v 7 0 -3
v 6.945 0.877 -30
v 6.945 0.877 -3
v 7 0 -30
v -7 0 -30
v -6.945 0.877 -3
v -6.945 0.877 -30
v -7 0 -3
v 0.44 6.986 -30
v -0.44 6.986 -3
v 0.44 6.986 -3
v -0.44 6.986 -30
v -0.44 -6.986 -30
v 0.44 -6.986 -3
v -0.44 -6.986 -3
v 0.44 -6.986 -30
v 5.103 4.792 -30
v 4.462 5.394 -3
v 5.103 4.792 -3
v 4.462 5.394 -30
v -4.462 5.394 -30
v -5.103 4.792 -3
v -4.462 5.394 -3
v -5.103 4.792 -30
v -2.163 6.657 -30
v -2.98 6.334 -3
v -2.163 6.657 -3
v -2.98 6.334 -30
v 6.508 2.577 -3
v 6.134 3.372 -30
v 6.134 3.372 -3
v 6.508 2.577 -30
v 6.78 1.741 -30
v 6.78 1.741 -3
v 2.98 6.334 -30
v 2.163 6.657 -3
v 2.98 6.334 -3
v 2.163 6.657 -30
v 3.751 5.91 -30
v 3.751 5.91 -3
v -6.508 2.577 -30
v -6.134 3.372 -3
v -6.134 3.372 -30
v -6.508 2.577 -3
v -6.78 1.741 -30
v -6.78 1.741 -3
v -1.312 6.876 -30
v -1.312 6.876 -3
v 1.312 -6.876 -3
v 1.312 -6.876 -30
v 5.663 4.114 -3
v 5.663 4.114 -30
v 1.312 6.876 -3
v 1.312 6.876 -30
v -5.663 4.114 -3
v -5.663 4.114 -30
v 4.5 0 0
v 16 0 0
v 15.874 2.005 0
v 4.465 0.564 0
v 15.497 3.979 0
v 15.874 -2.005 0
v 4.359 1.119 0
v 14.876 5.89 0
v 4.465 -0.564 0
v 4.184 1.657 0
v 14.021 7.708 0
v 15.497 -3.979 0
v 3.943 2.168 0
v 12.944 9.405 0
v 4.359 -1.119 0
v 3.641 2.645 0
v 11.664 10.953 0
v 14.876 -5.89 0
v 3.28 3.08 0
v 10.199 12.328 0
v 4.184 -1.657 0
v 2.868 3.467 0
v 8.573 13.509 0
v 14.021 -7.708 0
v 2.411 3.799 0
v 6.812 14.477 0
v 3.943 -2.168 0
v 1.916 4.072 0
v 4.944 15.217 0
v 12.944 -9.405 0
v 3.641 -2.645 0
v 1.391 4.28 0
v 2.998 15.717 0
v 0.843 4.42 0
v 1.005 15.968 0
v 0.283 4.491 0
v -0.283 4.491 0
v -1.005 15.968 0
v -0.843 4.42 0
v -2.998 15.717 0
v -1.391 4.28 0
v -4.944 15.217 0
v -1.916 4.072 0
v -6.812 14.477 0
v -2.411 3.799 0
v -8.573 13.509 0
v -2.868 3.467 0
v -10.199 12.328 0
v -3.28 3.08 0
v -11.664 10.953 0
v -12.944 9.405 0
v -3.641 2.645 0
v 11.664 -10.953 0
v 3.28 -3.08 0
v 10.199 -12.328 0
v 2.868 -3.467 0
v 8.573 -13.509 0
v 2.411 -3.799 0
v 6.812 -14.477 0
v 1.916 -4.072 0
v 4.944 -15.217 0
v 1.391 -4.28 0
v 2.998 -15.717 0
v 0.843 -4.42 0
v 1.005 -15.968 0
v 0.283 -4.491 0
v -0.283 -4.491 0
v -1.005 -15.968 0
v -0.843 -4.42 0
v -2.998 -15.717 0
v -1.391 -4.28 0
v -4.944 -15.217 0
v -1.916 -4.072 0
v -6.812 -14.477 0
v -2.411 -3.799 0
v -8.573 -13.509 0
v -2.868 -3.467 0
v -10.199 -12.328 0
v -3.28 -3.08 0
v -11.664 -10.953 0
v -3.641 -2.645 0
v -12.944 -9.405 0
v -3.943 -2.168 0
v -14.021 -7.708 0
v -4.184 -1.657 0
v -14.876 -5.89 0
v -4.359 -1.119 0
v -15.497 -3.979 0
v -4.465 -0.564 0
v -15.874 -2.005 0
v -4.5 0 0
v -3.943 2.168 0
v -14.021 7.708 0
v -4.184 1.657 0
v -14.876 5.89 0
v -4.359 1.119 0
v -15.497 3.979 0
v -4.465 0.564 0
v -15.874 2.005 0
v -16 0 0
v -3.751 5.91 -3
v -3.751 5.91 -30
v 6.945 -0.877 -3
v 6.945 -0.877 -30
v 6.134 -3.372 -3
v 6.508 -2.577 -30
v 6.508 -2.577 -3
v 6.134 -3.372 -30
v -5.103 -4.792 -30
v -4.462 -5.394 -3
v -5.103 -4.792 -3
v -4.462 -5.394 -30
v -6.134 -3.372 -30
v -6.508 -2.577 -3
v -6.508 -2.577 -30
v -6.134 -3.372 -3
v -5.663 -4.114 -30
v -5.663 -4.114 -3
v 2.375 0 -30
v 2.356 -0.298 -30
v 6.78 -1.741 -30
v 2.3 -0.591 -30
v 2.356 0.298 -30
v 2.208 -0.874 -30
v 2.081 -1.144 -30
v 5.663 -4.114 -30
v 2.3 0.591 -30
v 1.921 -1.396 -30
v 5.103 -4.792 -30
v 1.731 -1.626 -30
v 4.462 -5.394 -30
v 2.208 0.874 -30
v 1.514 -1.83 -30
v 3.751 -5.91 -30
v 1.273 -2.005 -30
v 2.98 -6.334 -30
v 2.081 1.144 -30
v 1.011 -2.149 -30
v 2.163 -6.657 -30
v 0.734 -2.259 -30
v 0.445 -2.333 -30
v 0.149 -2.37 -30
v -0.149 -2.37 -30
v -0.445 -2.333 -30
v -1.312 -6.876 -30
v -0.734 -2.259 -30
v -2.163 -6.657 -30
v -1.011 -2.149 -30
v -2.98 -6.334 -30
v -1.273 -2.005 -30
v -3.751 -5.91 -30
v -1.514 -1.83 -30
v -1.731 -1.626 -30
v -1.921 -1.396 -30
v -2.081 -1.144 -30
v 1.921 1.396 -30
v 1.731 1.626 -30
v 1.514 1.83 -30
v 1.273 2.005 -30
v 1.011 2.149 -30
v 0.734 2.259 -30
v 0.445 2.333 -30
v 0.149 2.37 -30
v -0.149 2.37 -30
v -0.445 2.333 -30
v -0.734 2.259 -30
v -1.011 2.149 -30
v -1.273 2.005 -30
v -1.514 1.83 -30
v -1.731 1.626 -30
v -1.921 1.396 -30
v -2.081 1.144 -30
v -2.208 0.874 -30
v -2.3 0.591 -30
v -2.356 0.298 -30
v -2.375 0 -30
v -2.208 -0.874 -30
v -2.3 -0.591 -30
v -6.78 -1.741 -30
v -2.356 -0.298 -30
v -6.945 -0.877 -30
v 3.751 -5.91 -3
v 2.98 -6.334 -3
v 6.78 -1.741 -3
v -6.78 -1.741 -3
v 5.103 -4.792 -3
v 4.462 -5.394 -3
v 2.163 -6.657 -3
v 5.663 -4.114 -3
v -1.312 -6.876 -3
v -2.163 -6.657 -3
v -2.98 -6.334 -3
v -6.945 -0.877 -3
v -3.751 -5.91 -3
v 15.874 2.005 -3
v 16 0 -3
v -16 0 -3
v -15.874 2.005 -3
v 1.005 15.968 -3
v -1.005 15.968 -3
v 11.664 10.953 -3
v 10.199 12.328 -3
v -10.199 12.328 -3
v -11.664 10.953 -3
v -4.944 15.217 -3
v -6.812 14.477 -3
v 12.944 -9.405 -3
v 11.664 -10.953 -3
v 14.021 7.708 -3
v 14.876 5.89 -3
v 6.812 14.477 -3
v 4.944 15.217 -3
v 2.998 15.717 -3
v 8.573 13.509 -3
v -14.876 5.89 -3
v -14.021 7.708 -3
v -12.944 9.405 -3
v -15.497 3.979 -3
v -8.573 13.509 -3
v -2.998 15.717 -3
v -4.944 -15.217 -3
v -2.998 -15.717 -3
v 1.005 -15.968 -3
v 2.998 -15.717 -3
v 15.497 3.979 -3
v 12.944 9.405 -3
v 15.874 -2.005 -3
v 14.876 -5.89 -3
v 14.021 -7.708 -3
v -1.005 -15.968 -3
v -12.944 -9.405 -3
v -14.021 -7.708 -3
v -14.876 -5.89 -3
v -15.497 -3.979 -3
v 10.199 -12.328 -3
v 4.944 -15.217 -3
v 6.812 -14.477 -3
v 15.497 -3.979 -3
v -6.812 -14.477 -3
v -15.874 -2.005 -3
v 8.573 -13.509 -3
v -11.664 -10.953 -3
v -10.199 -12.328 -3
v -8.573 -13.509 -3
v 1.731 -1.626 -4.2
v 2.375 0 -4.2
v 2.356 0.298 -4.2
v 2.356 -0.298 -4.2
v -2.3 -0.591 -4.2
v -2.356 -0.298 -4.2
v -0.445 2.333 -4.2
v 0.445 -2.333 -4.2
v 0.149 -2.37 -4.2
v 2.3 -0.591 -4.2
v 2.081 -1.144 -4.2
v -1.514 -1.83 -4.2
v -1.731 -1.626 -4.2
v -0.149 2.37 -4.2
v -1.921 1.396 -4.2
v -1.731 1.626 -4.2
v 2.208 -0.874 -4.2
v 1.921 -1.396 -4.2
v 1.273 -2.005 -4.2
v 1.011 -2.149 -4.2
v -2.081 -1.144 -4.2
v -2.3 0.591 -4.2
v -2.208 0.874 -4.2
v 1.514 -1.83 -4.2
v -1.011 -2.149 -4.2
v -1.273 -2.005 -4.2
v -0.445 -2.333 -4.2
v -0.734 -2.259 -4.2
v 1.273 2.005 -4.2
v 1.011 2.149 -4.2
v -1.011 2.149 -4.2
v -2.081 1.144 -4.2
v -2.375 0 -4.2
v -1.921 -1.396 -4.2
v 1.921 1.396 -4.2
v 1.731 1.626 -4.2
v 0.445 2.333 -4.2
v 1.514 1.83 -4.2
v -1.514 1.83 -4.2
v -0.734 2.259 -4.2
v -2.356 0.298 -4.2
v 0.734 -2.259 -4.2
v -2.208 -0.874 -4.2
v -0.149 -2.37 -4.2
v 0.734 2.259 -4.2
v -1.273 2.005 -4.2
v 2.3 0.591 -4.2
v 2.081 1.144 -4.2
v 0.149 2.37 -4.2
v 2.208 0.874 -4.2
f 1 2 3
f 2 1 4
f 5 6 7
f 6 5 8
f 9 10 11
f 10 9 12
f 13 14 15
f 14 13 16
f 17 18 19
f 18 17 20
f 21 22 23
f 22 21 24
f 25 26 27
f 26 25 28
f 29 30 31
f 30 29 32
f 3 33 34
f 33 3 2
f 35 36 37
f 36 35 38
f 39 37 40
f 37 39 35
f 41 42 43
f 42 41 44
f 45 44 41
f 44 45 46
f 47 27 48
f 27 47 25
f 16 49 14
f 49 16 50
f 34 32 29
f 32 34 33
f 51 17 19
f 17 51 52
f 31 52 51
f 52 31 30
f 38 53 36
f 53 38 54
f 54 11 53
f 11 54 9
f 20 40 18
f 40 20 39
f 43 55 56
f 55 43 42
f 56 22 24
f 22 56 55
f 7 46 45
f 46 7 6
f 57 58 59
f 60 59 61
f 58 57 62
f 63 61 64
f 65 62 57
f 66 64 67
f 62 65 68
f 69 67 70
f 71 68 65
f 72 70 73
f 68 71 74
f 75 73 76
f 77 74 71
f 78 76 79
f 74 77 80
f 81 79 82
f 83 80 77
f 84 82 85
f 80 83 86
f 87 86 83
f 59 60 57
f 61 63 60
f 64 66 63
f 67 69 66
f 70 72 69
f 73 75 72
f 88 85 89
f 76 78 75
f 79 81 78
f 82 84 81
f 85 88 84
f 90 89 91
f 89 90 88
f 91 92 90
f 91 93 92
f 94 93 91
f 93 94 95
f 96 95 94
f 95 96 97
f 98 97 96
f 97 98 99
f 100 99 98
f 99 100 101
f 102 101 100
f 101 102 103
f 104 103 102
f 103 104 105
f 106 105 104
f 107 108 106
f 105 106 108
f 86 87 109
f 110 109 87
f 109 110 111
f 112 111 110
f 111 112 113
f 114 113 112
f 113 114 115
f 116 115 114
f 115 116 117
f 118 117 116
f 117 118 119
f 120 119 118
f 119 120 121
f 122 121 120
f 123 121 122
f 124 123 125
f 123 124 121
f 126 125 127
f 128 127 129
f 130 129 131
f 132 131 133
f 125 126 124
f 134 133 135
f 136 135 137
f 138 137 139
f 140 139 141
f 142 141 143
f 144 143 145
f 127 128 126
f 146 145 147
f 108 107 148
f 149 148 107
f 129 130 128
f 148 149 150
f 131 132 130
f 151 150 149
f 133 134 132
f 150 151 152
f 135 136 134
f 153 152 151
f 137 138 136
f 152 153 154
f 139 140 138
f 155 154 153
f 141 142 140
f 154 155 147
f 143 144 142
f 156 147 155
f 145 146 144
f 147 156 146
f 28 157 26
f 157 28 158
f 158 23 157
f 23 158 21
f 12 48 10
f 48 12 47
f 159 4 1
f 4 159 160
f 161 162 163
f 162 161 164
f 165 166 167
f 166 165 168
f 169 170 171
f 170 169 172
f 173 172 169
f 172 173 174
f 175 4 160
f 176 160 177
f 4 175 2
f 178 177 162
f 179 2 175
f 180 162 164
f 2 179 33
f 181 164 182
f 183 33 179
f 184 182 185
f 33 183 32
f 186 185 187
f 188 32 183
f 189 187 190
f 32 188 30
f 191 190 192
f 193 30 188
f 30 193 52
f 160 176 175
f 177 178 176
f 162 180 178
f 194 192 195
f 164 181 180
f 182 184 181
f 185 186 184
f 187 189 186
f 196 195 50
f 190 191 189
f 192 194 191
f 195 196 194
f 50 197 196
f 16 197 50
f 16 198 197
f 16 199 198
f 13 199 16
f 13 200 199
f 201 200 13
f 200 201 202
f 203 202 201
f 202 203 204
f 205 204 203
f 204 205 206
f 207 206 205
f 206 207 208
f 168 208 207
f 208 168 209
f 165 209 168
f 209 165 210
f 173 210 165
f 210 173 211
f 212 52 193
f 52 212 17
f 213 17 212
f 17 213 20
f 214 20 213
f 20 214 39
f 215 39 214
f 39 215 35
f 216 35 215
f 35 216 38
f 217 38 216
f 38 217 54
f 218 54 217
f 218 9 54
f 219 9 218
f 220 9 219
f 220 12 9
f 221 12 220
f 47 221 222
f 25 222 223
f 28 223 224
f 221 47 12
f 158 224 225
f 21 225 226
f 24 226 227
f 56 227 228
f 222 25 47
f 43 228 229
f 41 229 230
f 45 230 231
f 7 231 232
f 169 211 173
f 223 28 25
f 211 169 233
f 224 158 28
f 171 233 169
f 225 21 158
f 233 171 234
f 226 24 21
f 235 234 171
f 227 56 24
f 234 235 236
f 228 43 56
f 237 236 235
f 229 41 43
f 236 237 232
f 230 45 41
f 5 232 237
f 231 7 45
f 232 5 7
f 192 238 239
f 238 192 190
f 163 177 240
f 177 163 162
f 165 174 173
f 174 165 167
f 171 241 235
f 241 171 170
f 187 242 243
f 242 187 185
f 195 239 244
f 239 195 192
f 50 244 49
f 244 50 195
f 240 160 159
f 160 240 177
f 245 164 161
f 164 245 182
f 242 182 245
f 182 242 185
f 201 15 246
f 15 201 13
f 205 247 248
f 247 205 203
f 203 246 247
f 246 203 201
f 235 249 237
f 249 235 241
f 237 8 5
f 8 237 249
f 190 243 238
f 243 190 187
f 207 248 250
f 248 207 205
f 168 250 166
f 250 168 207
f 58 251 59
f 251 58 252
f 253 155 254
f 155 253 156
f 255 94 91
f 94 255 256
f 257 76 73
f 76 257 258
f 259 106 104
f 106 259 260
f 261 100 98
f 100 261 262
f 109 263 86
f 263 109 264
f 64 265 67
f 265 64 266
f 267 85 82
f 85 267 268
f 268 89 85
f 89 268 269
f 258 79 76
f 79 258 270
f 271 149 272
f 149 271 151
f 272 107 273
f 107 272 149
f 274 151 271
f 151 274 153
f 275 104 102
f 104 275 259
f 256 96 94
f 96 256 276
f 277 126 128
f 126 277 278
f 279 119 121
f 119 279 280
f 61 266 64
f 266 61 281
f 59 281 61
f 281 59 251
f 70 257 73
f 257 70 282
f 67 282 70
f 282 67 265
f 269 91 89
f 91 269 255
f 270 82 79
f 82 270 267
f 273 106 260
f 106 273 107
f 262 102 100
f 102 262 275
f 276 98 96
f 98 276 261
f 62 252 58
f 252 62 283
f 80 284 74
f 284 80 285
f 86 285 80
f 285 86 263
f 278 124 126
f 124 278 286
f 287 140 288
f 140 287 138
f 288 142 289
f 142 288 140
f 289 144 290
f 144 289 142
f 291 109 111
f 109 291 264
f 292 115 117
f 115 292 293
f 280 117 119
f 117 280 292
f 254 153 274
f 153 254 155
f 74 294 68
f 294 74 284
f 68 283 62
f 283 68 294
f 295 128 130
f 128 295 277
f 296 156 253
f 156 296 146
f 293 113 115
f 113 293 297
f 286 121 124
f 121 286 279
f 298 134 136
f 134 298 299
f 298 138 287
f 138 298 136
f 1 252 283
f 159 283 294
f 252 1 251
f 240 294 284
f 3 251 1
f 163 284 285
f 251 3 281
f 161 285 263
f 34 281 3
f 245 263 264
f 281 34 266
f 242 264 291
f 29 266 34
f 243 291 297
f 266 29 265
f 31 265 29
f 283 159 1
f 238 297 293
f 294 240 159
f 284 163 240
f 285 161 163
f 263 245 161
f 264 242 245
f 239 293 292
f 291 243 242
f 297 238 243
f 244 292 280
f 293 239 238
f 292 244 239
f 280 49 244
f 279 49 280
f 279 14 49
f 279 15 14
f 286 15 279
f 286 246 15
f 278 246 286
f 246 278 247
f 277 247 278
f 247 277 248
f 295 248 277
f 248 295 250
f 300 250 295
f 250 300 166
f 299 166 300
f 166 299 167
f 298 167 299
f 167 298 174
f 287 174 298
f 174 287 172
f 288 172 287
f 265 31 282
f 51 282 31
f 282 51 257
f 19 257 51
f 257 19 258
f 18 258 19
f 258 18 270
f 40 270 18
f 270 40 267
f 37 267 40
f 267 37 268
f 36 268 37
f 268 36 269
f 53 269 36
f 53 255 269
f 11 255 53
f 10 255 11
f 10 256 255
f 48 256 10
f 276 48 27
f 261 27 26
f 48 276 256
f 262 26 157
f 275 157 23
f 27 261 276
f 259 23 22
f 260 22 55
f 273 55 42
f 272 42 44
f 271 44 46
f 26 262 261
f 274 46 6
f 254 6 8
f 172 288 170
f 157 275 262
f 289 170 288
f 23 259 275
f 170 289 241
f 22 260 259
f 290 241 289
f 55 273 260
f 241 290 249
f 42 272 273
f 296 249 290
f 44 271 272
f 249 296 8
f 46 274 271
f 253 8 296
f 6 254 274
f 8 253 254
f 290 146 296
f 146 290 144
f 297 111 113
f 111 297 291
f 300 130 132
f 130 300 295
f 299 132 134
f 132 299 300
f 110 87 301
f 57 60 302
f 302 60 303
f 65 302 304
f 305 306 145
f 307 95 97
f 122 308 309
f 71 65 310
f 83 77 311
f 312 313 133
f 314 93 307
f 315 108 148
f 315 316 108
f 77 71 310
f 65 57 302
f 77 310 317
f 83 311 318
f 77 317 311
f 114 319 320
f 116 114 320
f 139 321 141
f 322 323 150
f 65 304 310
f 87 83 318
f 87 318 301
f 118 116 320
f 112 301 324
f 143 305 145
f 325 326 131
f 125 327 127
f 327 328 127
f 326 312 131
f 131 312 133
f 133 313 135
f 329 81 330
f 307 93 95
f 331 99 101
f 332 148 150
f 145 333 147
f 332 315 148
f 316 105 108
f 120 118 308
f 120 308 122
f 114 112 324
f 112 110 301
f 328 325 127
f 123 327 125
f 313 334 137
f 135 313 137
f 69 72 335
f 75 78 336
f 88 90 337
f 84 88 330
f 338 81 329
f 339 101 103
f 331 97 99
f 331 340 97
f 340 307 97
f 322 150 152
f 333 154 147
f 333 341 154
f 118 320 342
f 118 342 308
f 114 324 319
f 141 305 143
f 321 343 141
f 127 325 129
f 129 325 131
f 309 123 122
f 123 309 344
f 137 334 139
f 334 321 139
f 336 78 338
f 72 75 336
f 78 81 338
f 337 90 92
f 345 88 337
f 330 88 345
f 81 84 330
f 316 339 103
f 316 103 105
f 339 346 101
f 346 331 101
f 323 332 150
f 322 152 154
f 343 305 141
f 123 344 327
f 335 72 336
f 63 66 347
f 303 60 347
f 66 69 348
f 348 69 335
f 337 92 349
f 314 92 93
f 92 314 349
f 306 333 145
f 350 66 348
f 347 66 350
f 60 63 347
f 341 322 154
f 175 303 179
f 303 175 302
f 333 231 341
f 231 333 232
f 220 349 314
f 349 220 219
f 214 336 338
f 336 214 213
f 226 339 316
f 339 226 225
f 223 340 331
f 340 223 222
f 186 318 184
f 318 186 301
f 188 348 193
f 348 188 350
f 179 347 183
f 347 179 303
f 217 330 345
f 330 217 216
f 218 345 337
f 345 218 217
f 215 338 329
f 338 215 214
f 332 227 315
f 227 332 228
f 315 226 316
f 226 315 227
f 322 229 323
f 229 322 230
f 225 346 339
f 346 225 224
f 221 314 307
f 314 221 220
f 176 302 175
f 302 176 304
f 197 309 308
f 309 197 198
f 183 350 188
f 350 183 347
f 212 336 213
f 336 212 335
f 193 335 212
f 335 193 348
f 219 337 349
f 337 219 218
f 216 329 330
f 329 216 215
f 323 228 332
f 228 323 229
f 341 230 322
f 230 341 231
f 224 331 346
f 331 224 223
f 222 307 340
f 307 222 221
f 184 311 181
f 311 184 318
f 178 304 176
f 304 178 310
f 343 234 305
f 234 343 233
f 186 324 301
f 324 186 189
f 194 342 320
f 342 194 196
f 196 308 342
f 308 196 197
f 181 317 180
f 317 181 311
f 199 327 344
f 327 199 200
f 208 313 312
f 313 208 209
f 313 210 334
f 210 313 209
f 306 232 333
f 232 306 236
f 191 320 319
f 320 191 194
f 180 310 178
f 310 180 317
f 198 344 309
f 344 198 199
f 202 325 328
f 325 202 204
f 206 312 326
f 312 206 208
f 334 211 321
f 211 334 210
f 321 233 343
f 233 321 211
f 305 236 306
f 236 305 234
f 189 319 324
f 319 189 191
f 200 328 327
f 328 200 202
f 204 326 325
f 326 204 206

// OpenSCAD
$fn = 50;


difference() {
	union() {
		translate(v = [0, 0, -30.0000000000]) {
			cylinder(h = 30, r = 7.0000000000);
		}
		translate(v = [0, 0, -3.0000000000]) {
			cylinder(h = 3, r = 16.0000000000);
		}
	}
	union() {
		translate(v = [0, 0, 0]) {
			rotate(a = [0, 0, 0]) {
				difference() {
					union() {
						#translate(v = [0, 0, -30.0000000000]) {
							cylinder(h = 30, r = 2.2500000000);
						}
						#translate(v = [0, 0, -4.2000000000]) {
							cylinder(h = 4.2000000000, r1 = 2.3750000000, r2 = 4.5000000000);
						}
						#translate(v = [0, 0, -30.0000000000]) {
							cylinder(h = 30, r = 2.3750000000);
						}
						#translate(v = [0, 0, -30.0000000000]) {
							cylinder(h = 30, r = 2.2500000000);
						}
					}
					union();
				}
			}
		}
	}
}
